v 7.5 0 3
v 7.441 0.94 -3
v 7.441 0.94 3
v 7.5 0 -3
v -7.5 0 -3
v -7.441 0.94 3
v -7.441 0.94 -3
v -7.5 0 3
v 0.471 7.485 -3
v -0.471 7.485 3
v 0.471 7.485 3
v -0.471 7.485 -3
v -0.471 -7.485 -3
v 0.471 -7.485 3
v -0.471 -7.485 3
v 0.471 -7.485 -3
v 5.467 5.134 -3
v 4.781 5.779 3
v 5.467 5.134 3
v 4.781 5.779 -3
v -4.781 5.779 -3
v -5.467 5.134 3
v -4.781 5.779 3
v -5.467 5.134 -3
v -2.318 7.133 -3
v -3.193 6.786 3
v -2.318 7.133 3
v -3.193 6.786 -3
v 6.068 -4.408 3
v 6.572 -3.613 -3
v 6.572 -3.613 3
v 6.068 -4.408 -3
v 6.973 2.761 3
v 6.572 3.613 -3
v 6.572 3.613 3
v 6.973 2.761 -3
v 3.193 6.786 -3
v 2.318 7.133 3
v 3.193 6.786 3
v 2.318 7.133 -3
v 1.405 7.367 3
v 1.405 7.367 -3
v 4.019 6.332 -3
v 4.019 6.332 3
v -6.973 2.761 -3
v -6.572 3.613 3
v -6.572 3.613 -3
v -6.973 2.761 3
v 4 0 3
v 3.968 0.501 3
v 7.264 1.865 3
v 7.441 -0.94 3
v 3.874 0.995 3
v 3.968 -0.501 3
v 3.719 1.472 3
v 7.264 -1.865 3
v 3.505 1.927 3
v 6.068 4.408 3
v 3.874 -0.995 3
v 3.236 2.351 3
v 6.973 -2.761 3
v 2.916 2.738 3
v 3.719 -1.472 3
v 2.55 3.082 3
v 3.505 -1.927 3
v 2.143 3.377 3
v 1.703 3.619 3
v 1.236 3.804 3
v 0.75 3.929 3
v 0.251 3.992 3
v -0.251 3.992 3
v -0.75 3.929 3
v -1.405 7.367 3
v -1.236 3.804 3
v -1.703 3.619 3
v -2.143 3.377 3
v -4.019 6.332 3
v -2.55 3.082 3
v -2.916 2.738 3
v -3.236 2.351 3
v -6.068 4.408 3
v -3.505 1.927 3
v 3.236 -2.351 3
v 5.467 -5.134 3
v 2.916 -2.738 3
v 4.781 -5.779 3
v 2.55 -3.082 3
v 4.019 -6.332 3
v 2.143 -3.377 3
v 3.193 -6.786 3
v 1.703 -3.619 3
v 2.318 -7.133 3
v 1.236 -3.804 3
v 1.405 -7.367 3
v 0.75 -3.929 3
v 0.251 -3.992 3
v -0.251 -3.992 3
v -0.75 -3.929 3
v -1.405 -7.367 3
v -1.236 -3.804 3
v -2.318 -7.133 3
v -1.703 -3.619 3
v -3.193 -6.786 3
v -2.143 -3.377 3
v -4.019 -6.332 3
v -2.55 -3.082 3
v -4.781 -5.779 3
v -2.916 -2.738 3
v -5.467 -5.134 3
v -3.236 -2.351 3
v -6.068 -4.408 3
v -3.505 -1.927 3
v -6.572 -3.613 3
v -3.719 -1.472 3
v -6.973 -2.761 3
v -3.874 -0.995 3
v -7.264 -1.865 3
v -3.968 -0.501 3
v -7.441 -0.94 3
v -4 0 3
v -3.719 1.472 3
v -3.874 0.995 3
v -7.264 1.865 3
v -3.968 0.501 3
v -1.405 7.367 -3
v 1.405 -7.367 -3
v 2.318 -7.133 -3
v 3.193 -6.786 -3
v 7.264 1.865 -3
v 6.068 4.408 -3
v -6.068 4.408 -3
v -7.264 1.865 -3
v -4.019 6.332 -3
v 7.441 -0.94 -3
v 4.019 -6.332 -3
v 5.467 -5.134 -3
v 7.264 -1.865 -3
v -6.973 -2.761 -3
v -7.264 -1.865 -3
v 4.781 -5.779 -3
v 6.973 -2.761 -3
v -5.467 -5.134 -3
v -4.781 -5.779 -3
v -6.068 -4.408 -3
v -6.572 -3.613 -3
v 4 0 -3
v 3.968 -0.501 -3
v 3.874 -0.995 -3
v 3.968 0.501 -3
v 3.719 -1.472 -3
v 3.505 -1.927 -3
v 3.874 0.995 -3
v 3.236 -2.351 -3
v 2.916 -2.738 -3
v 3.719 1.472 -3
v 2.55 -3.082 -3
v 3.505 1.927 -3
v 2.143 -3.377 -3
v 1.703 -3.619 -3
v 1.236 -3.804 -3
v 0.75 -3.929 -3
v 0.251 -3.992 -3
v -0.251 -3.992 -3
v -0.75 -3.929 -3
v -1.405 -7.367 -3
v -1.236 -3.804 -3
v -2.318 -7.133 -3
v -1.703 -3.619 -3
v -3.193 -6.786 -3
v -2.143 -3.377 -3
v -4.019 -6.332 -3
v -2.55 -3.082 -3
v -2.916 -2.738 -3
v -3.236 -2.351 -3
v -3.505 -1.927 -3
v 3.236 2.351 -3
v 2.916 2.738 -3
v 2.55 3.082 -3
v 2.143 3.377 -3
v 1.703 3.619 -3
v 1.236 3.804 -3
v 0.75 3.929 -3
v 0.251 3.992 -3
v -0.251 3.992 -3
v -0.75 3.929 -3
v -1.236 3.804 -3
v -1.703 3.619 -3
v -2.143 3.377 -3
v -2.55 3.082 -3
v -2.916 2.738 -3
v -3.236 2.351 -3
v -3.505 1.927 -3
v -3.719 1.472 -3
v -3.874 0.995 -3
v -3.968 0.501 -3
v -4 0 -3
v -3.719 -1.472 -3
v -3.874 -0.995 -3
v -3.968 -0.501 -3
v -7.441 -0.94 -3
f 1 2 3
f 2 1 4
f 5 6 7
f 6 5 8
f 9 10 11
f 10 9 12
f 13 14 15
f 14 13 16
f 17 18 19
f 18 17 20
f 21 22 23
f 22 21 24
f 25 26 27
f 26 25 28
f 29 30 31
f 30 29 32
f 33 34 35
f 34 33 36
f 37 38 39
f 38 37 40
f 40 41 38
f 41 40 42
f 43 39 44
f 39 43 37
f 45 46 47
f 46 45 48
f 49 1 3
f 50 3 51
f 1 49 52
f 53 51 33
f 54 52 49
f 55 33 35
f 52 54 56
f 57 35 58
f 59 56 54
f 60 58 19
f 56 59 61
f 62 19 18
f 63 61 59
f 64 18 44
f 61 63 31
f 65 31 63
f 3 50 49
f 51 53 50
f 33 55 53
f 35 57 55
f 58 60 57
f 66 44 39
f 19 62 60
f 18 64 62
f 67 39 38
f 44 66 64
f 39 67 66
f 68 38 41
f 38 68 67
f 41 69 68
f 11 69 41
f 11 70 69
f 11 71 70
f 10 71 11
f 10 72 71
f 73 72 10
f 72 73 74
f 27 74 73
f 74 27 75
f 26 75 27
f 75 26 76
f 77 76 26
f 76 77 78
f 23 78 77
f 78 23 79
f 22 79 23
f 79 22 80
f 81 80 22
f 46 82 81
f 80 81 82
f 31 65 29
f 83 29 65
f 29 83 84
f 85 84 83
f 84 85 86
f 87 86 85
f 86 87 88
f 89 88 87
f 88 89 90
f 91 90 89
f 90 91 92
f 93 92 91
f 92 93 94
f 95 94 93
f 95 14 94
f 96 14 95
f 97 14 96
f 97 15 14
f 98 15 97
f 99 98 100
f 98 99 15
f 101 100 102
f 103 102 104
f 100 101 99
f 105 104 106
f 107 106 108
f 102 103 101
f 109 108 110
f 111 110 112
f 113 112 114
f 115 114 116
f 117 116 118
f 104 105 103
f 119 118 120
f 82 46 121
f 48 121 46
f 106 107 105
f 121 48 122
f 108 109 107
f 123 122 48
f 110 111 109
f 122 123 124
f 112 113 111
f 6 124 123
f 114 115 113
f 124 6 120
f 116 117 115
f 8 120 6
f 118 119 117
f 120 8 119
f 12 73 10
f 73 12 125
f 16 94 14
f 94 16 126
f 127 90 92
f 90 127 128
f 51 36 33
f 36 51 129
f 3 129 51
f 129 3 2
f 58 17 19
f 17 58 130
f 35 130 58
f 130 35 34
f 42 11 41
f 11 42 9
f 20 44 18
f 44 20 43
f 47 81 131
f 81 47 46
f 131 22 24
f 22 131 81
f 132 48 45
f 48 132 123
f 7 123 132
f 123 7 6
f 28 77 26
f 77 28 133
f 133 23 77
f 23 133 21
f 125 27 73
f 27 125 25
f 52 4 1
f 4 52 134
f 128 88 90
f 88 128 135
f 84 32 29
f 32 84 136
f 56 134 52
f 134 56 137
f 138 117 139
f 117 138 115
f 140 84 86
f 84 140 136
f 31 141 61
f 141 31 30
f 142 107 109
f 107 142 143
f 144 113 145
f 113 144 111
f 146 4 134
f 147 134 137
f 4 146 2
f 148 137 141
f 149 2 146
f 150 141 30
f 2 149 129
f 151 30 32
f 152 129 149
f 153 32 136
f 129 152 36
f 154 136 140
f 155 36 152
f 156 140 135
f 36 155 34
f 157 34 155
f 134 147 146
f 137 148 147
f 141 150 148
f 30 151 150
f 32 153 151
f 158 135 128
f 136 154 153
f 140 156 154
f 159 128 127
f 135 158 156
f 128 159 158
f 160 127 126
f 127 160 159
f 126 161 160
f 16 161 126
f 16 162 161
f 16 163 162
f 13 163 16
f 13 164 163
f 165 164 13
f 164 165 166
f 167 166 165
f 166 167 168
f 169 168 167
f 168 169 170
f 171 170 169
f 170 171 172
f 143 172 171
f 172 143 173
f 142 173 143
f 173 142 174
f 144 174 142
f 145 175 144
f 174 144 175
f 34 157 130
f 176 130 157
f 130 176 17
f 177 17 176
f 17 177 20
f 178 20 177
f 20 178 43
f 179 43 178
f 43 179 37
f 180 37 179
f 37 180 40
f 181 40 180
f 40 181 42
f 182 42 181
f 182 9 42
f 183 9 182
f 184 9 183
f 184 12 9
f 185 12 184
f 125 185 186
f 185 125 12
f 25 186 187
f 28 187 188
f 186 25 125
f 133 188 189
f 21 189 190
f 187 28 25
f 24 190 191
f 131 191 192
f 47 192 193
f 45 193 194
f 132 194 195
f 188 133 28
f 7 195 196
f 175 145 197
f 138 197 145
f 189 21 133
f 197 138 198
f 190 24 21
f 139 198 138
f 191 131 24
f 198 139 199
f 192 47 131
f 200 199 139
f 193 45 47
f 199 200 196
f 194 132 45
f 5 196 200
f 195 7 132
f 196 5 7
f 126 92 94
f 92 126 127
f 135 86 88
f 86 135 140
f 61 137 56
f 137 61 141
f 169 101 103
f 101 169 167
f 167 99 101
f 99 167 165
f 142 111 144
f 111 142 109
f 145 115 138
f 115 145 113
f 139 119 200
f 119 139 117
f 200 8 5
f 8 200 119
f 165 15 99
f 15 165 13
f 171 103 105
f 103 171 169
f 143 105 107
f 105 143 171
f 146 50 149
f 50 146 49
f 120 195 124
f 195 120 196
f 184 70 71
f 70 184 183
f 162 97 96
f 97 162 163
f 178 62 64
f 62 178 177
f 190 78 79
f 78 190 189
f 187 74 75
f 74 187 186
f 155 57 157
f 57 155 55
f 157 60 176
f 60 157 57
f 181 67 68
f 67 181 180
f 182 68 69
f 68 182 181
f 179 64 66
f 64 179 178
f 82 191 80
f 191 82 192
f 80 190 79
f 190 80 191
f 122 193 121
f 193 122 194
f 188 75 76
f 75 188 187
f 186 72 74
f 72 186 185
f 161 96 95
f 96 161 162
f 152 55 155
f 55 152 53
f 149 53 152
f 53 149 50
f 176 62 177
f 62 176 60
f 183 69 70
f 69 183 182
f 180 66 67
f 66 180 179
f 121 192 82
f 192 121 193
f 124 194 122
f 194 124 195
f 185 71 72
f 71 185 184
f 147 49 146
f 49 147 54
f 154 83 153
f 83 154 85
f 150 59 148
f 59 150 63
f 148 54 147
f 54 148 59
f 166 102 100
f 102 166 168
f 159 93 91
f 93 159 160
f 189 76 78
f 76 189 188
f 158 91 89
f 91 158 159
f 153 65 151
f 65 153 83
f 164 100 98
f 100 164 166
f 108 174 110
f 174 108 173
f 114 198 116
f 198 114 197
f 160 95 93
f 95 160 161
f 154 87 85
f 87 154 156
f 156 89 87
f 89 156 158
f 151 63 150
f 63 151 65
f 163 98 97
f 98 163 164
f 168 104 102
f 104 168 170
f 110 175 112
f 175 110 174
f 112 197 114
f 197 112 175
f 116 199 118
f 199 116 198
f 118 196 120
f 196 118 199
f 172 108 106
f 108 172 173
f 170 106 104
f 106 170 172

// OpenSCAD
$fn = 50;


difference() {
	union() {
		translate(v = [0, 0, -3.0000000000]) {
			cylinder(h = 6, r = 7.5000000000);
		}
	}
	union() {
		translate(v = [0, 0, -100.0000000000]) {
			cylinder(h = 200, r = 4.0000000000);
		}
	}
}
